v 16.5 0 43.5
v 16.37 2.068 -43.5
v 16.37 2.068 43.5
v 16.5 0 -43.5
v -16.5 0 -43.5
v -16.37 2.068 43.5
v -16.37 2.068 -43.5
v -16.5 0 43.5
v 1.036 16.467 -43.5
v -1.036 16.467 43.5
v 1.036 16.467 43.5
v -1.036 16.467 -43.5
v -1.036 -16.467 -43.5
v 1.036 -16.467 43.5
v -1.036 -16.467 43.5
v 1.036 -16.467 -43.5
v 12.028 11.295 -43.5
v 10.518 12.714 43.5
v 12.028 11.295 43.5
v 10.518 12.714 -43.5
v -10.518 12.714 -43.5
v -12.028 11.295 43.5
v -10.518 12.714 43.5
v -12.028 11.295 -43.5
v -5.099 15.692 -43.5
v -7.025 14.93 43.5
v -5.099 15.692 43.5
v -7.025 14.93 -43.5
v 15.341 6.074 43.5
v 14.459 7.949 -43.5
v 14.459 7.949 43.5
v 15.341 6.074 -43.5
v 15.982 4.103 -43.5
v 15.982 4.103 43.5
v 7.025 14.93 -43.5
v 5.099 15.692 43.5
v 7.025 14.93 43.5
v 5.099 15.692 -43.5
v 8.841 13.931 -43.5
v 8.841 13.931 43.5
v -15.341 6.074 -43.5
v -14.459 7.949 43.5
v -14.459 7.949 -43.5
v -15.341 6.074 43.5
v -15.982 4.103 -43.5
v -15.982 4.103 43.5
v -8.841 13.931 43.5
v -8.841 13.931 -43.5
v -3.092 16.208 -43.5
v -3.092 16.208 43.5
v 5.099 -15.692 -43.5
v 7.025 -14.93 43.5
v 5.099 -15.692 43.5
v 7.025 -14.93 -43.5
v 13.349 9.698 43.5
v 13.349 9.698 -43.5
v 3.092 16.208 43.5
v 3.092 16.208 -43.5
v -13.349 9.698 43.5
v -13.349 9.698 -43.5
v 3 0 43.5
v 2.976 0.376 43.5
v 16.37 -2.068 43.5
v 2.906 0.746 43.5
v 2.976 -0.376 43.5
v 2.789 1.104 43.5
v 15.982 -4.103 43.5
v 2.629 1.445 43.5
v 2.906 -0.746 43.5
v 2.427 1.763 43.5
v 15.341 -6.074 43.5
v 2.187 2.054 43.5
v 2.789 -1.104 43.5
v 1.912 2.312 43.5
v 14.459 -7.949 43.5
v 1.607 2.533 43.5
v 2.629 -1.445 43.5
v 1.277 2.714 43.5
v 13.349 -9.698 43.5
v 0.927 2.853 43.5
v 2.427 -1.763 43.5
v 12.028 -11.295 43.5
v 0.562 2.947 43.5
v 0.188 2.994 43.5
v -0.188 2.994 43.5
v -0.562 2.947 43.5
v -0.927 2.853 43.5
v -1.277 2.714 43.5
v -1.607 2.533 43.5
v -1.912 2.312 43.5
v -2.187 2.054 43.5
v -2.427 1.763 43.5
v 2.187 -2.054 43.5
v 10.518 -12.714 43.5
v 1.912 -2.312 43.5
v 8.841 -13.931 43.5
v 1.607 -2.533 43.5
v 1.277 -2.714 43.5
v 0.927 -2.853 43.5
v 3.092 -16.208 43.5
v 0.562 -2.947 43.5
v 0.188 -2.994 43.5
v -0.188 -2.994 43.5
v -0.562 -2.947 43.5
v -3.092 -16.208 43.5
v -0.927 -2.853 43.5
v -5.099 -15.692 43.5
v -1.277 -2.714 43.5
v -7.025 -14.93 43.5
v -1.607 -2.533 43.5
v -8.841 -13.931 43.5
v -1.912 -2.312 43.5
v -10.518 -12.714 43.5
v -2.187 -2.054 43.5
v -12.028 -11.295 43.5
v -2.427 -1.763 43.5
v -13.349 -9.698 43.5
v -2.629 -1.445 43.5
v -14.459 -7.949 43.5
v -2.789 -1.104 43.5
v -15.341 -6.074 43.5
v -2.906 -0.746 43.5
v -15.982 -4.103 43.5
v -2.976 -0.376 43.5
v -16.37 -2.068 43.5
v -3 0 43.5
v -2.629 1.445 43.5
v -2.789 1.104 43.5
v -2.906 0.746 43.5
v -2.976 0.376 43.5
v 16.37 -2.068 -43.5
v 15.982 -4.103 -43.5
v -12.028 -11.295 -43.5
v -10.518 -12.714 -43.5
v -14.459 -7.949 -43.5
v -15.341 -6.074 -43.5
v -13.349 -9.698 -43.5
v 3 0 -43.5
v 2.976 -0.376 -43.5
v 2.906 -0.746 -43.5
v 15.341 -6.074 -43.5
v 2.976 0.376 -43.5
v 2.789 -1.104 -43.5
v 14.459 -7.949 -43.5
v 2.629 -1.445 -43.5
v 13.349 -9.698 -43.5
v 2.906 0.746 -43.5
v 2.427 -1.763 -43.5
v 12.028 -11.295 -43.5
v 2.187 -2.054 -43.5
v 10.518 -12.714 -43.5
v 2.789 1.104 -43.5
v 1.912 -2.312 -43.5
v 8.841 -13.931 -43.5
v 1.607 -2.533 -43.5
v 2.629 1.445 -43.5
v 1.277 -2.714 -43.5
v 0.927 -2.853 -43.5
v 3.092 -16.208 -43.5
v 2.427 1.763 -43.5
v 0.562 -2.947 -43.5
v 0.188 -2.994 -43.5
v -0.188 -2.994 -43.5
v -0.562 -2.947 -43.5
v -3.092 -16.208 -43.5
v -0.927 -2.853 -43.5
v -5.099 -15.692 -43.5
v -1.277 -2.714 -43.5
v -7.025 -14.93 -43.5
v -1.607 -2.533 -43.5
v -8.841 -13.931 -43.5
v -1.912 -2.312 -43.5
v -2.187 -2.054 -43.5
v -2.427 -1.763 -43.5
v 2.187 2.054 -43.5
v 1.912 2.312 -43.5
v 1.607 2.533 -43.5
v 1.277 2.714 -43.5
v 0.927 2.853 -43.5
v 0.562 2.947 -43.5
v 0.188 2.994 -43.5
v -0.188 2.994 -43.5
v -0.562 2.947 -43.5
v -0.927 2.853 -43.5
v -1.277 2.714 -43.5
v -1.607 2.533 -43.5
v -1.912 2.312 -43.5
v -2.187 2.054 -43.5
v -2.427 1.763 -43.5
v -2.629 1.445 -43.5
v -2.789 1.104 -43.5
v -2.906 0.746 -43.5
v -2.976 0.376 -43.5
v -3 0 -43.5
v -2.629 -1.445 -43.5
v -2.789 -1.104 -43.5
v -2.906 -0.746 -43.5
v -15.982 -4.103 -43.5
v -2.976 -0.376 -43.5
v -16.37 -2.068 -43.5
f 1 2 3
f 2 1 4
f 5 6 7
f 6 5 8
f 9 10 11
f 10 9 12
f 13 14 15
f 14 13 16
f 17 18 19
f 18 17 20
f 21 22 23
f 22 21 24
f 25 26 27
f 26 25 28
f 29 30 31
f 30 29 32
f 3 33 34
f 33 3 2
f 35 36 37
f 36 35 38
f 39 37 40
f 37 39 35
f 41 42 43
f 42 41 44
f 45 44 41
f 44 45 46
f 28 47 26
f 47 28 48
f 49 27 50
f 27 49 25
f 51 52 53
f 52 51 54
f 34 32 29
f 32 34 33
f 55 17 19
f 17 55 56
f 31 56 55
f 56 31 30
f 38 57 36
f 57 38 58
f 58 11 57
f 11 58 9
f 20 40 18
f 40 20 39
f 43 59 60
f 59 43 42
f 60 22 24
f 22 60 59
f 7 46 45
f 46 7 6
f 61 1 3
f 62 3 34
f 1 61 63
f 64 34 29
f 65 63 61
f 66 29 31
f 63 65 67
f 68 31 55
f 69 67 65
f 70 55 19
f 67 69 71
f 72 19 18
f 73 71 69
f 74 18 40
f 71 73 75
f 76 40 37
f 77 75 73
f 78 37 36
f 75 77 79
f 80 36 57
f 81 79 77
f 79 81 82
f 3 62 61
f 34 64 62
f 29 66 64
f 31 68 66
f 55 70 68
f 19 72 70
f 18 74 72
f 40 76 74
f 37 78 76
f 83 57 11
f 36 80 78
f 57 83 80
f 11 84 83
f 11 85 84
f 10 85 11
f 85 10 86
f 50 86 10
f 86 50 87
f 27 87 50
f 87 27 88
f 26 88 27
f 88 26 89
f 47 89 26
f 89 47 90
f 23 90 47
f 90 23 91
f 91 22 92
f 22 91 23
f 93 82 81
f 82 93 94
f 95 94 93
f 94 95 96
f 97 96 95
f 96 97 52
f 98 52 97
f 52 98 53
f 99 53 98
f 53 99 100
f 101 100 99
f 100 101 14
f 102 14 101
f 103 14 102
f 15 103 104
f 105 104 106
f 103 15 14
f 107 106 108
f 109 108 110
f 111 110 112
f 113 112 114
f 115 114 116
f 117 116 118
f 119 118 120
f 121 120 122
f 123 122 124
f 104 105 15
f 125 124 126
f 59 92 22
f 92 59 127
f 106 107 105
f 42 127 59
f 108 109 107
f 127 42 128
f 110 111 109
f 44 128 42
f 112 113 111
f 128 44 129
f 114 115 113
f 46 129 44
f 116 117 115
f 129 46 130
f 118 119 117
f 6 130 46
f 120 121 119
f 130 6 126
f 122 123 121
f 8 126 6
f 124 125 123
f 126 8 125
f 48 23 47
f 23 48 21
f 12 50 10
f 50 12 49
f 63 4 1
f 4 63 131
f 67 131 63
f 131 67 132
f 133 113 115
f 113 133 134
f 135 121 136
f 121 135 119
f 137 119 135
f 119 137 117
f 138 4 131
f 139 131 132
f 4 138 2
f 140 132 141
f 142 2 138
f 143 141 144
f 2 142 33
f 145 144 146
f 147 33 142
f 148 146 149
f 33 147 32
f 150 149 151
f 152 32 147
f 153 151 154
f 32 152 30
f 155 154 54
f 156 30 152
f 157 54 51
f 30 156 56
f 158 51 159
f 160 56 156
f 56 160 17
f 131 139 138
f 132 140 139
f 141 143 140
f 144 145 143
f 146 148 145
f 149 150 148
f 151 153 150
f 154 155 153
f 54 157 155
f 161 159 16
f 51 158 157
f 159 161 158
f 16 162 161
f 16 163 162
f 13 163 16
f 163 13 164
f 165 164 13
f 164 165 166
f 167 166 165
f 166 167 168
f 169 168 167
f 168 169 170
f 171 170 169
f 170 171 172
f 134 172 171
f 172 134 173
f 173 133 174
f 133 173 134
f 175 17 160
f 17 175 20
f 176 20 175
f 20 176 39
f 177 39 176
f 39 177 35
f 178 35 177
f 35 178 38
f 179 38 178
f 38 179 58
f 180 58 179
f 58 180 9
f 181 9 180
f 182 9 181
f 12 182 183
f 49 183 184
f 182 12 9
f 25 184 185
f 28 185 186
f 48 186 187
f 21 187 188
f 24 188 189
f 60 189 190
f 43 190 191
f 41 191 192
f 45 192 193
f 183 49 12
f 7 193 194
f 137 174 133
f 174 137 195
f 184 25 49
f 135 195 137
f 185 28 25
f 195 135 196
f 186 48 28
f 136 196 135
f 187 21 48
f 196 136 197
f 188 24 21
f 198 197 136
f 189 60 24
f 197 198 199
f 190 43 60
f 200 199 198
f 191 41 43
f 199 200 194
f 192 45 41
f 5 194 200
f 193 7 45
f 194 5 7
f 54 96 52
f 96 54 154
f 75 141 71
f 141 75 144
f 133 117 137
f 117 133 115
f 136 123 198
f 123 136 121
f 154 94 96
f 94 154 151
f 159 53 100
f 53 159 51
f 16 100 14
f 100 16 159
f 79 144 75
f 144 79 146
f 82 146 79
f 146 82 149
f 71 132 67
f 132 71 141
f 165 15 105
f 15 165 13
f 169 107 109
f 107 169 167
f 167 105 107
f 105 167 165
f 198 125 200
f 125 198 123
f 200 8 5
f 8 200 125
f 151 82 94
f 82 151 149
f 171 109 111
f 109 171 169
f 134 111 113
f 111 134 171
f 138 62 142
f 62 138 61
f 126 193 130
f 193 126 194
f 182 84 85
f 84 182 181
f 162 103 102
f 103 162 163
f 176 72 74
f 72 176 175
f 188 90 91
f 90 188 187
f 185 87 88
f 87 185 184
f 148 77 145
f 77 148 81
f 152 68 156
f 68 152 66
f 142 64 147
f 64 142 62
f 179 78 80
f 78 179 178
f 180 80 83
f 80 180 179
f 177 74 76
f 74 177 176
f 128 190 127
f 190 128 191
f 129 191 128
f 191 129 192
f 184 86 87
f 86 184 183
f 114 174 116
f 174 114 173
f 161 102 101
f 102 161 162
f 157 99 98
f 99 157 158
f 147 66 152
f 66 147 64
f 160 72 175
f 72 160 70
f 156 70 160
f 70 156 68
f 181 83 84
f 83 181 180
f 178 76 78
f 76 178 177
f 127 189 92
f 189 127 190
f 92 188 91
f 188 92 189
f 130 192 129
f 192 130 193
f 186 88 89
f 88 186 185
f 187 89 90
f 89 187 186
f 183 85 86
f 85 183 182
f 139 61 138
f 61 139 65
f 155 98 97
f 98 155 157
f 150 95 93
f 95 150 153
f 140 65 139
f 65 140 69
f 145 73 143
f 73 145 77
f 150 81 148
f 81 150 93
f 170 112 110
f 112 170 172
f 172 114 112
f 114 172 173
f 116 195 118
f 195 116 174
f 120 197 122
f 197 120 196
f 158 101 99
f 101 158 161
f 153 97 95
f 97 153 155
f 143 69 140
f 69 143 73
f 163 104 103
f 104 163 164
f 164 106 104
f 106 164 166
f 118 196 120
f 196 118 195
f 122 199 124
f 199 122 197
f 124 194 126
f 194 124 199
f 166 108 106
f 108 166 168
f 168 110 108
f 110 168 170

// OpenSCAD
$fn = 50;


difference() {
	union() {
		translate(v = [0, 0, -43.5000000000]) {
			cylinder(h = 87, r = 16.5000000000);
		}
	}
	union() {
		translate(v = [0, 0, -100.0000000000]) {
			cylinder(h = 200, r = 3);
		}
	}
}
